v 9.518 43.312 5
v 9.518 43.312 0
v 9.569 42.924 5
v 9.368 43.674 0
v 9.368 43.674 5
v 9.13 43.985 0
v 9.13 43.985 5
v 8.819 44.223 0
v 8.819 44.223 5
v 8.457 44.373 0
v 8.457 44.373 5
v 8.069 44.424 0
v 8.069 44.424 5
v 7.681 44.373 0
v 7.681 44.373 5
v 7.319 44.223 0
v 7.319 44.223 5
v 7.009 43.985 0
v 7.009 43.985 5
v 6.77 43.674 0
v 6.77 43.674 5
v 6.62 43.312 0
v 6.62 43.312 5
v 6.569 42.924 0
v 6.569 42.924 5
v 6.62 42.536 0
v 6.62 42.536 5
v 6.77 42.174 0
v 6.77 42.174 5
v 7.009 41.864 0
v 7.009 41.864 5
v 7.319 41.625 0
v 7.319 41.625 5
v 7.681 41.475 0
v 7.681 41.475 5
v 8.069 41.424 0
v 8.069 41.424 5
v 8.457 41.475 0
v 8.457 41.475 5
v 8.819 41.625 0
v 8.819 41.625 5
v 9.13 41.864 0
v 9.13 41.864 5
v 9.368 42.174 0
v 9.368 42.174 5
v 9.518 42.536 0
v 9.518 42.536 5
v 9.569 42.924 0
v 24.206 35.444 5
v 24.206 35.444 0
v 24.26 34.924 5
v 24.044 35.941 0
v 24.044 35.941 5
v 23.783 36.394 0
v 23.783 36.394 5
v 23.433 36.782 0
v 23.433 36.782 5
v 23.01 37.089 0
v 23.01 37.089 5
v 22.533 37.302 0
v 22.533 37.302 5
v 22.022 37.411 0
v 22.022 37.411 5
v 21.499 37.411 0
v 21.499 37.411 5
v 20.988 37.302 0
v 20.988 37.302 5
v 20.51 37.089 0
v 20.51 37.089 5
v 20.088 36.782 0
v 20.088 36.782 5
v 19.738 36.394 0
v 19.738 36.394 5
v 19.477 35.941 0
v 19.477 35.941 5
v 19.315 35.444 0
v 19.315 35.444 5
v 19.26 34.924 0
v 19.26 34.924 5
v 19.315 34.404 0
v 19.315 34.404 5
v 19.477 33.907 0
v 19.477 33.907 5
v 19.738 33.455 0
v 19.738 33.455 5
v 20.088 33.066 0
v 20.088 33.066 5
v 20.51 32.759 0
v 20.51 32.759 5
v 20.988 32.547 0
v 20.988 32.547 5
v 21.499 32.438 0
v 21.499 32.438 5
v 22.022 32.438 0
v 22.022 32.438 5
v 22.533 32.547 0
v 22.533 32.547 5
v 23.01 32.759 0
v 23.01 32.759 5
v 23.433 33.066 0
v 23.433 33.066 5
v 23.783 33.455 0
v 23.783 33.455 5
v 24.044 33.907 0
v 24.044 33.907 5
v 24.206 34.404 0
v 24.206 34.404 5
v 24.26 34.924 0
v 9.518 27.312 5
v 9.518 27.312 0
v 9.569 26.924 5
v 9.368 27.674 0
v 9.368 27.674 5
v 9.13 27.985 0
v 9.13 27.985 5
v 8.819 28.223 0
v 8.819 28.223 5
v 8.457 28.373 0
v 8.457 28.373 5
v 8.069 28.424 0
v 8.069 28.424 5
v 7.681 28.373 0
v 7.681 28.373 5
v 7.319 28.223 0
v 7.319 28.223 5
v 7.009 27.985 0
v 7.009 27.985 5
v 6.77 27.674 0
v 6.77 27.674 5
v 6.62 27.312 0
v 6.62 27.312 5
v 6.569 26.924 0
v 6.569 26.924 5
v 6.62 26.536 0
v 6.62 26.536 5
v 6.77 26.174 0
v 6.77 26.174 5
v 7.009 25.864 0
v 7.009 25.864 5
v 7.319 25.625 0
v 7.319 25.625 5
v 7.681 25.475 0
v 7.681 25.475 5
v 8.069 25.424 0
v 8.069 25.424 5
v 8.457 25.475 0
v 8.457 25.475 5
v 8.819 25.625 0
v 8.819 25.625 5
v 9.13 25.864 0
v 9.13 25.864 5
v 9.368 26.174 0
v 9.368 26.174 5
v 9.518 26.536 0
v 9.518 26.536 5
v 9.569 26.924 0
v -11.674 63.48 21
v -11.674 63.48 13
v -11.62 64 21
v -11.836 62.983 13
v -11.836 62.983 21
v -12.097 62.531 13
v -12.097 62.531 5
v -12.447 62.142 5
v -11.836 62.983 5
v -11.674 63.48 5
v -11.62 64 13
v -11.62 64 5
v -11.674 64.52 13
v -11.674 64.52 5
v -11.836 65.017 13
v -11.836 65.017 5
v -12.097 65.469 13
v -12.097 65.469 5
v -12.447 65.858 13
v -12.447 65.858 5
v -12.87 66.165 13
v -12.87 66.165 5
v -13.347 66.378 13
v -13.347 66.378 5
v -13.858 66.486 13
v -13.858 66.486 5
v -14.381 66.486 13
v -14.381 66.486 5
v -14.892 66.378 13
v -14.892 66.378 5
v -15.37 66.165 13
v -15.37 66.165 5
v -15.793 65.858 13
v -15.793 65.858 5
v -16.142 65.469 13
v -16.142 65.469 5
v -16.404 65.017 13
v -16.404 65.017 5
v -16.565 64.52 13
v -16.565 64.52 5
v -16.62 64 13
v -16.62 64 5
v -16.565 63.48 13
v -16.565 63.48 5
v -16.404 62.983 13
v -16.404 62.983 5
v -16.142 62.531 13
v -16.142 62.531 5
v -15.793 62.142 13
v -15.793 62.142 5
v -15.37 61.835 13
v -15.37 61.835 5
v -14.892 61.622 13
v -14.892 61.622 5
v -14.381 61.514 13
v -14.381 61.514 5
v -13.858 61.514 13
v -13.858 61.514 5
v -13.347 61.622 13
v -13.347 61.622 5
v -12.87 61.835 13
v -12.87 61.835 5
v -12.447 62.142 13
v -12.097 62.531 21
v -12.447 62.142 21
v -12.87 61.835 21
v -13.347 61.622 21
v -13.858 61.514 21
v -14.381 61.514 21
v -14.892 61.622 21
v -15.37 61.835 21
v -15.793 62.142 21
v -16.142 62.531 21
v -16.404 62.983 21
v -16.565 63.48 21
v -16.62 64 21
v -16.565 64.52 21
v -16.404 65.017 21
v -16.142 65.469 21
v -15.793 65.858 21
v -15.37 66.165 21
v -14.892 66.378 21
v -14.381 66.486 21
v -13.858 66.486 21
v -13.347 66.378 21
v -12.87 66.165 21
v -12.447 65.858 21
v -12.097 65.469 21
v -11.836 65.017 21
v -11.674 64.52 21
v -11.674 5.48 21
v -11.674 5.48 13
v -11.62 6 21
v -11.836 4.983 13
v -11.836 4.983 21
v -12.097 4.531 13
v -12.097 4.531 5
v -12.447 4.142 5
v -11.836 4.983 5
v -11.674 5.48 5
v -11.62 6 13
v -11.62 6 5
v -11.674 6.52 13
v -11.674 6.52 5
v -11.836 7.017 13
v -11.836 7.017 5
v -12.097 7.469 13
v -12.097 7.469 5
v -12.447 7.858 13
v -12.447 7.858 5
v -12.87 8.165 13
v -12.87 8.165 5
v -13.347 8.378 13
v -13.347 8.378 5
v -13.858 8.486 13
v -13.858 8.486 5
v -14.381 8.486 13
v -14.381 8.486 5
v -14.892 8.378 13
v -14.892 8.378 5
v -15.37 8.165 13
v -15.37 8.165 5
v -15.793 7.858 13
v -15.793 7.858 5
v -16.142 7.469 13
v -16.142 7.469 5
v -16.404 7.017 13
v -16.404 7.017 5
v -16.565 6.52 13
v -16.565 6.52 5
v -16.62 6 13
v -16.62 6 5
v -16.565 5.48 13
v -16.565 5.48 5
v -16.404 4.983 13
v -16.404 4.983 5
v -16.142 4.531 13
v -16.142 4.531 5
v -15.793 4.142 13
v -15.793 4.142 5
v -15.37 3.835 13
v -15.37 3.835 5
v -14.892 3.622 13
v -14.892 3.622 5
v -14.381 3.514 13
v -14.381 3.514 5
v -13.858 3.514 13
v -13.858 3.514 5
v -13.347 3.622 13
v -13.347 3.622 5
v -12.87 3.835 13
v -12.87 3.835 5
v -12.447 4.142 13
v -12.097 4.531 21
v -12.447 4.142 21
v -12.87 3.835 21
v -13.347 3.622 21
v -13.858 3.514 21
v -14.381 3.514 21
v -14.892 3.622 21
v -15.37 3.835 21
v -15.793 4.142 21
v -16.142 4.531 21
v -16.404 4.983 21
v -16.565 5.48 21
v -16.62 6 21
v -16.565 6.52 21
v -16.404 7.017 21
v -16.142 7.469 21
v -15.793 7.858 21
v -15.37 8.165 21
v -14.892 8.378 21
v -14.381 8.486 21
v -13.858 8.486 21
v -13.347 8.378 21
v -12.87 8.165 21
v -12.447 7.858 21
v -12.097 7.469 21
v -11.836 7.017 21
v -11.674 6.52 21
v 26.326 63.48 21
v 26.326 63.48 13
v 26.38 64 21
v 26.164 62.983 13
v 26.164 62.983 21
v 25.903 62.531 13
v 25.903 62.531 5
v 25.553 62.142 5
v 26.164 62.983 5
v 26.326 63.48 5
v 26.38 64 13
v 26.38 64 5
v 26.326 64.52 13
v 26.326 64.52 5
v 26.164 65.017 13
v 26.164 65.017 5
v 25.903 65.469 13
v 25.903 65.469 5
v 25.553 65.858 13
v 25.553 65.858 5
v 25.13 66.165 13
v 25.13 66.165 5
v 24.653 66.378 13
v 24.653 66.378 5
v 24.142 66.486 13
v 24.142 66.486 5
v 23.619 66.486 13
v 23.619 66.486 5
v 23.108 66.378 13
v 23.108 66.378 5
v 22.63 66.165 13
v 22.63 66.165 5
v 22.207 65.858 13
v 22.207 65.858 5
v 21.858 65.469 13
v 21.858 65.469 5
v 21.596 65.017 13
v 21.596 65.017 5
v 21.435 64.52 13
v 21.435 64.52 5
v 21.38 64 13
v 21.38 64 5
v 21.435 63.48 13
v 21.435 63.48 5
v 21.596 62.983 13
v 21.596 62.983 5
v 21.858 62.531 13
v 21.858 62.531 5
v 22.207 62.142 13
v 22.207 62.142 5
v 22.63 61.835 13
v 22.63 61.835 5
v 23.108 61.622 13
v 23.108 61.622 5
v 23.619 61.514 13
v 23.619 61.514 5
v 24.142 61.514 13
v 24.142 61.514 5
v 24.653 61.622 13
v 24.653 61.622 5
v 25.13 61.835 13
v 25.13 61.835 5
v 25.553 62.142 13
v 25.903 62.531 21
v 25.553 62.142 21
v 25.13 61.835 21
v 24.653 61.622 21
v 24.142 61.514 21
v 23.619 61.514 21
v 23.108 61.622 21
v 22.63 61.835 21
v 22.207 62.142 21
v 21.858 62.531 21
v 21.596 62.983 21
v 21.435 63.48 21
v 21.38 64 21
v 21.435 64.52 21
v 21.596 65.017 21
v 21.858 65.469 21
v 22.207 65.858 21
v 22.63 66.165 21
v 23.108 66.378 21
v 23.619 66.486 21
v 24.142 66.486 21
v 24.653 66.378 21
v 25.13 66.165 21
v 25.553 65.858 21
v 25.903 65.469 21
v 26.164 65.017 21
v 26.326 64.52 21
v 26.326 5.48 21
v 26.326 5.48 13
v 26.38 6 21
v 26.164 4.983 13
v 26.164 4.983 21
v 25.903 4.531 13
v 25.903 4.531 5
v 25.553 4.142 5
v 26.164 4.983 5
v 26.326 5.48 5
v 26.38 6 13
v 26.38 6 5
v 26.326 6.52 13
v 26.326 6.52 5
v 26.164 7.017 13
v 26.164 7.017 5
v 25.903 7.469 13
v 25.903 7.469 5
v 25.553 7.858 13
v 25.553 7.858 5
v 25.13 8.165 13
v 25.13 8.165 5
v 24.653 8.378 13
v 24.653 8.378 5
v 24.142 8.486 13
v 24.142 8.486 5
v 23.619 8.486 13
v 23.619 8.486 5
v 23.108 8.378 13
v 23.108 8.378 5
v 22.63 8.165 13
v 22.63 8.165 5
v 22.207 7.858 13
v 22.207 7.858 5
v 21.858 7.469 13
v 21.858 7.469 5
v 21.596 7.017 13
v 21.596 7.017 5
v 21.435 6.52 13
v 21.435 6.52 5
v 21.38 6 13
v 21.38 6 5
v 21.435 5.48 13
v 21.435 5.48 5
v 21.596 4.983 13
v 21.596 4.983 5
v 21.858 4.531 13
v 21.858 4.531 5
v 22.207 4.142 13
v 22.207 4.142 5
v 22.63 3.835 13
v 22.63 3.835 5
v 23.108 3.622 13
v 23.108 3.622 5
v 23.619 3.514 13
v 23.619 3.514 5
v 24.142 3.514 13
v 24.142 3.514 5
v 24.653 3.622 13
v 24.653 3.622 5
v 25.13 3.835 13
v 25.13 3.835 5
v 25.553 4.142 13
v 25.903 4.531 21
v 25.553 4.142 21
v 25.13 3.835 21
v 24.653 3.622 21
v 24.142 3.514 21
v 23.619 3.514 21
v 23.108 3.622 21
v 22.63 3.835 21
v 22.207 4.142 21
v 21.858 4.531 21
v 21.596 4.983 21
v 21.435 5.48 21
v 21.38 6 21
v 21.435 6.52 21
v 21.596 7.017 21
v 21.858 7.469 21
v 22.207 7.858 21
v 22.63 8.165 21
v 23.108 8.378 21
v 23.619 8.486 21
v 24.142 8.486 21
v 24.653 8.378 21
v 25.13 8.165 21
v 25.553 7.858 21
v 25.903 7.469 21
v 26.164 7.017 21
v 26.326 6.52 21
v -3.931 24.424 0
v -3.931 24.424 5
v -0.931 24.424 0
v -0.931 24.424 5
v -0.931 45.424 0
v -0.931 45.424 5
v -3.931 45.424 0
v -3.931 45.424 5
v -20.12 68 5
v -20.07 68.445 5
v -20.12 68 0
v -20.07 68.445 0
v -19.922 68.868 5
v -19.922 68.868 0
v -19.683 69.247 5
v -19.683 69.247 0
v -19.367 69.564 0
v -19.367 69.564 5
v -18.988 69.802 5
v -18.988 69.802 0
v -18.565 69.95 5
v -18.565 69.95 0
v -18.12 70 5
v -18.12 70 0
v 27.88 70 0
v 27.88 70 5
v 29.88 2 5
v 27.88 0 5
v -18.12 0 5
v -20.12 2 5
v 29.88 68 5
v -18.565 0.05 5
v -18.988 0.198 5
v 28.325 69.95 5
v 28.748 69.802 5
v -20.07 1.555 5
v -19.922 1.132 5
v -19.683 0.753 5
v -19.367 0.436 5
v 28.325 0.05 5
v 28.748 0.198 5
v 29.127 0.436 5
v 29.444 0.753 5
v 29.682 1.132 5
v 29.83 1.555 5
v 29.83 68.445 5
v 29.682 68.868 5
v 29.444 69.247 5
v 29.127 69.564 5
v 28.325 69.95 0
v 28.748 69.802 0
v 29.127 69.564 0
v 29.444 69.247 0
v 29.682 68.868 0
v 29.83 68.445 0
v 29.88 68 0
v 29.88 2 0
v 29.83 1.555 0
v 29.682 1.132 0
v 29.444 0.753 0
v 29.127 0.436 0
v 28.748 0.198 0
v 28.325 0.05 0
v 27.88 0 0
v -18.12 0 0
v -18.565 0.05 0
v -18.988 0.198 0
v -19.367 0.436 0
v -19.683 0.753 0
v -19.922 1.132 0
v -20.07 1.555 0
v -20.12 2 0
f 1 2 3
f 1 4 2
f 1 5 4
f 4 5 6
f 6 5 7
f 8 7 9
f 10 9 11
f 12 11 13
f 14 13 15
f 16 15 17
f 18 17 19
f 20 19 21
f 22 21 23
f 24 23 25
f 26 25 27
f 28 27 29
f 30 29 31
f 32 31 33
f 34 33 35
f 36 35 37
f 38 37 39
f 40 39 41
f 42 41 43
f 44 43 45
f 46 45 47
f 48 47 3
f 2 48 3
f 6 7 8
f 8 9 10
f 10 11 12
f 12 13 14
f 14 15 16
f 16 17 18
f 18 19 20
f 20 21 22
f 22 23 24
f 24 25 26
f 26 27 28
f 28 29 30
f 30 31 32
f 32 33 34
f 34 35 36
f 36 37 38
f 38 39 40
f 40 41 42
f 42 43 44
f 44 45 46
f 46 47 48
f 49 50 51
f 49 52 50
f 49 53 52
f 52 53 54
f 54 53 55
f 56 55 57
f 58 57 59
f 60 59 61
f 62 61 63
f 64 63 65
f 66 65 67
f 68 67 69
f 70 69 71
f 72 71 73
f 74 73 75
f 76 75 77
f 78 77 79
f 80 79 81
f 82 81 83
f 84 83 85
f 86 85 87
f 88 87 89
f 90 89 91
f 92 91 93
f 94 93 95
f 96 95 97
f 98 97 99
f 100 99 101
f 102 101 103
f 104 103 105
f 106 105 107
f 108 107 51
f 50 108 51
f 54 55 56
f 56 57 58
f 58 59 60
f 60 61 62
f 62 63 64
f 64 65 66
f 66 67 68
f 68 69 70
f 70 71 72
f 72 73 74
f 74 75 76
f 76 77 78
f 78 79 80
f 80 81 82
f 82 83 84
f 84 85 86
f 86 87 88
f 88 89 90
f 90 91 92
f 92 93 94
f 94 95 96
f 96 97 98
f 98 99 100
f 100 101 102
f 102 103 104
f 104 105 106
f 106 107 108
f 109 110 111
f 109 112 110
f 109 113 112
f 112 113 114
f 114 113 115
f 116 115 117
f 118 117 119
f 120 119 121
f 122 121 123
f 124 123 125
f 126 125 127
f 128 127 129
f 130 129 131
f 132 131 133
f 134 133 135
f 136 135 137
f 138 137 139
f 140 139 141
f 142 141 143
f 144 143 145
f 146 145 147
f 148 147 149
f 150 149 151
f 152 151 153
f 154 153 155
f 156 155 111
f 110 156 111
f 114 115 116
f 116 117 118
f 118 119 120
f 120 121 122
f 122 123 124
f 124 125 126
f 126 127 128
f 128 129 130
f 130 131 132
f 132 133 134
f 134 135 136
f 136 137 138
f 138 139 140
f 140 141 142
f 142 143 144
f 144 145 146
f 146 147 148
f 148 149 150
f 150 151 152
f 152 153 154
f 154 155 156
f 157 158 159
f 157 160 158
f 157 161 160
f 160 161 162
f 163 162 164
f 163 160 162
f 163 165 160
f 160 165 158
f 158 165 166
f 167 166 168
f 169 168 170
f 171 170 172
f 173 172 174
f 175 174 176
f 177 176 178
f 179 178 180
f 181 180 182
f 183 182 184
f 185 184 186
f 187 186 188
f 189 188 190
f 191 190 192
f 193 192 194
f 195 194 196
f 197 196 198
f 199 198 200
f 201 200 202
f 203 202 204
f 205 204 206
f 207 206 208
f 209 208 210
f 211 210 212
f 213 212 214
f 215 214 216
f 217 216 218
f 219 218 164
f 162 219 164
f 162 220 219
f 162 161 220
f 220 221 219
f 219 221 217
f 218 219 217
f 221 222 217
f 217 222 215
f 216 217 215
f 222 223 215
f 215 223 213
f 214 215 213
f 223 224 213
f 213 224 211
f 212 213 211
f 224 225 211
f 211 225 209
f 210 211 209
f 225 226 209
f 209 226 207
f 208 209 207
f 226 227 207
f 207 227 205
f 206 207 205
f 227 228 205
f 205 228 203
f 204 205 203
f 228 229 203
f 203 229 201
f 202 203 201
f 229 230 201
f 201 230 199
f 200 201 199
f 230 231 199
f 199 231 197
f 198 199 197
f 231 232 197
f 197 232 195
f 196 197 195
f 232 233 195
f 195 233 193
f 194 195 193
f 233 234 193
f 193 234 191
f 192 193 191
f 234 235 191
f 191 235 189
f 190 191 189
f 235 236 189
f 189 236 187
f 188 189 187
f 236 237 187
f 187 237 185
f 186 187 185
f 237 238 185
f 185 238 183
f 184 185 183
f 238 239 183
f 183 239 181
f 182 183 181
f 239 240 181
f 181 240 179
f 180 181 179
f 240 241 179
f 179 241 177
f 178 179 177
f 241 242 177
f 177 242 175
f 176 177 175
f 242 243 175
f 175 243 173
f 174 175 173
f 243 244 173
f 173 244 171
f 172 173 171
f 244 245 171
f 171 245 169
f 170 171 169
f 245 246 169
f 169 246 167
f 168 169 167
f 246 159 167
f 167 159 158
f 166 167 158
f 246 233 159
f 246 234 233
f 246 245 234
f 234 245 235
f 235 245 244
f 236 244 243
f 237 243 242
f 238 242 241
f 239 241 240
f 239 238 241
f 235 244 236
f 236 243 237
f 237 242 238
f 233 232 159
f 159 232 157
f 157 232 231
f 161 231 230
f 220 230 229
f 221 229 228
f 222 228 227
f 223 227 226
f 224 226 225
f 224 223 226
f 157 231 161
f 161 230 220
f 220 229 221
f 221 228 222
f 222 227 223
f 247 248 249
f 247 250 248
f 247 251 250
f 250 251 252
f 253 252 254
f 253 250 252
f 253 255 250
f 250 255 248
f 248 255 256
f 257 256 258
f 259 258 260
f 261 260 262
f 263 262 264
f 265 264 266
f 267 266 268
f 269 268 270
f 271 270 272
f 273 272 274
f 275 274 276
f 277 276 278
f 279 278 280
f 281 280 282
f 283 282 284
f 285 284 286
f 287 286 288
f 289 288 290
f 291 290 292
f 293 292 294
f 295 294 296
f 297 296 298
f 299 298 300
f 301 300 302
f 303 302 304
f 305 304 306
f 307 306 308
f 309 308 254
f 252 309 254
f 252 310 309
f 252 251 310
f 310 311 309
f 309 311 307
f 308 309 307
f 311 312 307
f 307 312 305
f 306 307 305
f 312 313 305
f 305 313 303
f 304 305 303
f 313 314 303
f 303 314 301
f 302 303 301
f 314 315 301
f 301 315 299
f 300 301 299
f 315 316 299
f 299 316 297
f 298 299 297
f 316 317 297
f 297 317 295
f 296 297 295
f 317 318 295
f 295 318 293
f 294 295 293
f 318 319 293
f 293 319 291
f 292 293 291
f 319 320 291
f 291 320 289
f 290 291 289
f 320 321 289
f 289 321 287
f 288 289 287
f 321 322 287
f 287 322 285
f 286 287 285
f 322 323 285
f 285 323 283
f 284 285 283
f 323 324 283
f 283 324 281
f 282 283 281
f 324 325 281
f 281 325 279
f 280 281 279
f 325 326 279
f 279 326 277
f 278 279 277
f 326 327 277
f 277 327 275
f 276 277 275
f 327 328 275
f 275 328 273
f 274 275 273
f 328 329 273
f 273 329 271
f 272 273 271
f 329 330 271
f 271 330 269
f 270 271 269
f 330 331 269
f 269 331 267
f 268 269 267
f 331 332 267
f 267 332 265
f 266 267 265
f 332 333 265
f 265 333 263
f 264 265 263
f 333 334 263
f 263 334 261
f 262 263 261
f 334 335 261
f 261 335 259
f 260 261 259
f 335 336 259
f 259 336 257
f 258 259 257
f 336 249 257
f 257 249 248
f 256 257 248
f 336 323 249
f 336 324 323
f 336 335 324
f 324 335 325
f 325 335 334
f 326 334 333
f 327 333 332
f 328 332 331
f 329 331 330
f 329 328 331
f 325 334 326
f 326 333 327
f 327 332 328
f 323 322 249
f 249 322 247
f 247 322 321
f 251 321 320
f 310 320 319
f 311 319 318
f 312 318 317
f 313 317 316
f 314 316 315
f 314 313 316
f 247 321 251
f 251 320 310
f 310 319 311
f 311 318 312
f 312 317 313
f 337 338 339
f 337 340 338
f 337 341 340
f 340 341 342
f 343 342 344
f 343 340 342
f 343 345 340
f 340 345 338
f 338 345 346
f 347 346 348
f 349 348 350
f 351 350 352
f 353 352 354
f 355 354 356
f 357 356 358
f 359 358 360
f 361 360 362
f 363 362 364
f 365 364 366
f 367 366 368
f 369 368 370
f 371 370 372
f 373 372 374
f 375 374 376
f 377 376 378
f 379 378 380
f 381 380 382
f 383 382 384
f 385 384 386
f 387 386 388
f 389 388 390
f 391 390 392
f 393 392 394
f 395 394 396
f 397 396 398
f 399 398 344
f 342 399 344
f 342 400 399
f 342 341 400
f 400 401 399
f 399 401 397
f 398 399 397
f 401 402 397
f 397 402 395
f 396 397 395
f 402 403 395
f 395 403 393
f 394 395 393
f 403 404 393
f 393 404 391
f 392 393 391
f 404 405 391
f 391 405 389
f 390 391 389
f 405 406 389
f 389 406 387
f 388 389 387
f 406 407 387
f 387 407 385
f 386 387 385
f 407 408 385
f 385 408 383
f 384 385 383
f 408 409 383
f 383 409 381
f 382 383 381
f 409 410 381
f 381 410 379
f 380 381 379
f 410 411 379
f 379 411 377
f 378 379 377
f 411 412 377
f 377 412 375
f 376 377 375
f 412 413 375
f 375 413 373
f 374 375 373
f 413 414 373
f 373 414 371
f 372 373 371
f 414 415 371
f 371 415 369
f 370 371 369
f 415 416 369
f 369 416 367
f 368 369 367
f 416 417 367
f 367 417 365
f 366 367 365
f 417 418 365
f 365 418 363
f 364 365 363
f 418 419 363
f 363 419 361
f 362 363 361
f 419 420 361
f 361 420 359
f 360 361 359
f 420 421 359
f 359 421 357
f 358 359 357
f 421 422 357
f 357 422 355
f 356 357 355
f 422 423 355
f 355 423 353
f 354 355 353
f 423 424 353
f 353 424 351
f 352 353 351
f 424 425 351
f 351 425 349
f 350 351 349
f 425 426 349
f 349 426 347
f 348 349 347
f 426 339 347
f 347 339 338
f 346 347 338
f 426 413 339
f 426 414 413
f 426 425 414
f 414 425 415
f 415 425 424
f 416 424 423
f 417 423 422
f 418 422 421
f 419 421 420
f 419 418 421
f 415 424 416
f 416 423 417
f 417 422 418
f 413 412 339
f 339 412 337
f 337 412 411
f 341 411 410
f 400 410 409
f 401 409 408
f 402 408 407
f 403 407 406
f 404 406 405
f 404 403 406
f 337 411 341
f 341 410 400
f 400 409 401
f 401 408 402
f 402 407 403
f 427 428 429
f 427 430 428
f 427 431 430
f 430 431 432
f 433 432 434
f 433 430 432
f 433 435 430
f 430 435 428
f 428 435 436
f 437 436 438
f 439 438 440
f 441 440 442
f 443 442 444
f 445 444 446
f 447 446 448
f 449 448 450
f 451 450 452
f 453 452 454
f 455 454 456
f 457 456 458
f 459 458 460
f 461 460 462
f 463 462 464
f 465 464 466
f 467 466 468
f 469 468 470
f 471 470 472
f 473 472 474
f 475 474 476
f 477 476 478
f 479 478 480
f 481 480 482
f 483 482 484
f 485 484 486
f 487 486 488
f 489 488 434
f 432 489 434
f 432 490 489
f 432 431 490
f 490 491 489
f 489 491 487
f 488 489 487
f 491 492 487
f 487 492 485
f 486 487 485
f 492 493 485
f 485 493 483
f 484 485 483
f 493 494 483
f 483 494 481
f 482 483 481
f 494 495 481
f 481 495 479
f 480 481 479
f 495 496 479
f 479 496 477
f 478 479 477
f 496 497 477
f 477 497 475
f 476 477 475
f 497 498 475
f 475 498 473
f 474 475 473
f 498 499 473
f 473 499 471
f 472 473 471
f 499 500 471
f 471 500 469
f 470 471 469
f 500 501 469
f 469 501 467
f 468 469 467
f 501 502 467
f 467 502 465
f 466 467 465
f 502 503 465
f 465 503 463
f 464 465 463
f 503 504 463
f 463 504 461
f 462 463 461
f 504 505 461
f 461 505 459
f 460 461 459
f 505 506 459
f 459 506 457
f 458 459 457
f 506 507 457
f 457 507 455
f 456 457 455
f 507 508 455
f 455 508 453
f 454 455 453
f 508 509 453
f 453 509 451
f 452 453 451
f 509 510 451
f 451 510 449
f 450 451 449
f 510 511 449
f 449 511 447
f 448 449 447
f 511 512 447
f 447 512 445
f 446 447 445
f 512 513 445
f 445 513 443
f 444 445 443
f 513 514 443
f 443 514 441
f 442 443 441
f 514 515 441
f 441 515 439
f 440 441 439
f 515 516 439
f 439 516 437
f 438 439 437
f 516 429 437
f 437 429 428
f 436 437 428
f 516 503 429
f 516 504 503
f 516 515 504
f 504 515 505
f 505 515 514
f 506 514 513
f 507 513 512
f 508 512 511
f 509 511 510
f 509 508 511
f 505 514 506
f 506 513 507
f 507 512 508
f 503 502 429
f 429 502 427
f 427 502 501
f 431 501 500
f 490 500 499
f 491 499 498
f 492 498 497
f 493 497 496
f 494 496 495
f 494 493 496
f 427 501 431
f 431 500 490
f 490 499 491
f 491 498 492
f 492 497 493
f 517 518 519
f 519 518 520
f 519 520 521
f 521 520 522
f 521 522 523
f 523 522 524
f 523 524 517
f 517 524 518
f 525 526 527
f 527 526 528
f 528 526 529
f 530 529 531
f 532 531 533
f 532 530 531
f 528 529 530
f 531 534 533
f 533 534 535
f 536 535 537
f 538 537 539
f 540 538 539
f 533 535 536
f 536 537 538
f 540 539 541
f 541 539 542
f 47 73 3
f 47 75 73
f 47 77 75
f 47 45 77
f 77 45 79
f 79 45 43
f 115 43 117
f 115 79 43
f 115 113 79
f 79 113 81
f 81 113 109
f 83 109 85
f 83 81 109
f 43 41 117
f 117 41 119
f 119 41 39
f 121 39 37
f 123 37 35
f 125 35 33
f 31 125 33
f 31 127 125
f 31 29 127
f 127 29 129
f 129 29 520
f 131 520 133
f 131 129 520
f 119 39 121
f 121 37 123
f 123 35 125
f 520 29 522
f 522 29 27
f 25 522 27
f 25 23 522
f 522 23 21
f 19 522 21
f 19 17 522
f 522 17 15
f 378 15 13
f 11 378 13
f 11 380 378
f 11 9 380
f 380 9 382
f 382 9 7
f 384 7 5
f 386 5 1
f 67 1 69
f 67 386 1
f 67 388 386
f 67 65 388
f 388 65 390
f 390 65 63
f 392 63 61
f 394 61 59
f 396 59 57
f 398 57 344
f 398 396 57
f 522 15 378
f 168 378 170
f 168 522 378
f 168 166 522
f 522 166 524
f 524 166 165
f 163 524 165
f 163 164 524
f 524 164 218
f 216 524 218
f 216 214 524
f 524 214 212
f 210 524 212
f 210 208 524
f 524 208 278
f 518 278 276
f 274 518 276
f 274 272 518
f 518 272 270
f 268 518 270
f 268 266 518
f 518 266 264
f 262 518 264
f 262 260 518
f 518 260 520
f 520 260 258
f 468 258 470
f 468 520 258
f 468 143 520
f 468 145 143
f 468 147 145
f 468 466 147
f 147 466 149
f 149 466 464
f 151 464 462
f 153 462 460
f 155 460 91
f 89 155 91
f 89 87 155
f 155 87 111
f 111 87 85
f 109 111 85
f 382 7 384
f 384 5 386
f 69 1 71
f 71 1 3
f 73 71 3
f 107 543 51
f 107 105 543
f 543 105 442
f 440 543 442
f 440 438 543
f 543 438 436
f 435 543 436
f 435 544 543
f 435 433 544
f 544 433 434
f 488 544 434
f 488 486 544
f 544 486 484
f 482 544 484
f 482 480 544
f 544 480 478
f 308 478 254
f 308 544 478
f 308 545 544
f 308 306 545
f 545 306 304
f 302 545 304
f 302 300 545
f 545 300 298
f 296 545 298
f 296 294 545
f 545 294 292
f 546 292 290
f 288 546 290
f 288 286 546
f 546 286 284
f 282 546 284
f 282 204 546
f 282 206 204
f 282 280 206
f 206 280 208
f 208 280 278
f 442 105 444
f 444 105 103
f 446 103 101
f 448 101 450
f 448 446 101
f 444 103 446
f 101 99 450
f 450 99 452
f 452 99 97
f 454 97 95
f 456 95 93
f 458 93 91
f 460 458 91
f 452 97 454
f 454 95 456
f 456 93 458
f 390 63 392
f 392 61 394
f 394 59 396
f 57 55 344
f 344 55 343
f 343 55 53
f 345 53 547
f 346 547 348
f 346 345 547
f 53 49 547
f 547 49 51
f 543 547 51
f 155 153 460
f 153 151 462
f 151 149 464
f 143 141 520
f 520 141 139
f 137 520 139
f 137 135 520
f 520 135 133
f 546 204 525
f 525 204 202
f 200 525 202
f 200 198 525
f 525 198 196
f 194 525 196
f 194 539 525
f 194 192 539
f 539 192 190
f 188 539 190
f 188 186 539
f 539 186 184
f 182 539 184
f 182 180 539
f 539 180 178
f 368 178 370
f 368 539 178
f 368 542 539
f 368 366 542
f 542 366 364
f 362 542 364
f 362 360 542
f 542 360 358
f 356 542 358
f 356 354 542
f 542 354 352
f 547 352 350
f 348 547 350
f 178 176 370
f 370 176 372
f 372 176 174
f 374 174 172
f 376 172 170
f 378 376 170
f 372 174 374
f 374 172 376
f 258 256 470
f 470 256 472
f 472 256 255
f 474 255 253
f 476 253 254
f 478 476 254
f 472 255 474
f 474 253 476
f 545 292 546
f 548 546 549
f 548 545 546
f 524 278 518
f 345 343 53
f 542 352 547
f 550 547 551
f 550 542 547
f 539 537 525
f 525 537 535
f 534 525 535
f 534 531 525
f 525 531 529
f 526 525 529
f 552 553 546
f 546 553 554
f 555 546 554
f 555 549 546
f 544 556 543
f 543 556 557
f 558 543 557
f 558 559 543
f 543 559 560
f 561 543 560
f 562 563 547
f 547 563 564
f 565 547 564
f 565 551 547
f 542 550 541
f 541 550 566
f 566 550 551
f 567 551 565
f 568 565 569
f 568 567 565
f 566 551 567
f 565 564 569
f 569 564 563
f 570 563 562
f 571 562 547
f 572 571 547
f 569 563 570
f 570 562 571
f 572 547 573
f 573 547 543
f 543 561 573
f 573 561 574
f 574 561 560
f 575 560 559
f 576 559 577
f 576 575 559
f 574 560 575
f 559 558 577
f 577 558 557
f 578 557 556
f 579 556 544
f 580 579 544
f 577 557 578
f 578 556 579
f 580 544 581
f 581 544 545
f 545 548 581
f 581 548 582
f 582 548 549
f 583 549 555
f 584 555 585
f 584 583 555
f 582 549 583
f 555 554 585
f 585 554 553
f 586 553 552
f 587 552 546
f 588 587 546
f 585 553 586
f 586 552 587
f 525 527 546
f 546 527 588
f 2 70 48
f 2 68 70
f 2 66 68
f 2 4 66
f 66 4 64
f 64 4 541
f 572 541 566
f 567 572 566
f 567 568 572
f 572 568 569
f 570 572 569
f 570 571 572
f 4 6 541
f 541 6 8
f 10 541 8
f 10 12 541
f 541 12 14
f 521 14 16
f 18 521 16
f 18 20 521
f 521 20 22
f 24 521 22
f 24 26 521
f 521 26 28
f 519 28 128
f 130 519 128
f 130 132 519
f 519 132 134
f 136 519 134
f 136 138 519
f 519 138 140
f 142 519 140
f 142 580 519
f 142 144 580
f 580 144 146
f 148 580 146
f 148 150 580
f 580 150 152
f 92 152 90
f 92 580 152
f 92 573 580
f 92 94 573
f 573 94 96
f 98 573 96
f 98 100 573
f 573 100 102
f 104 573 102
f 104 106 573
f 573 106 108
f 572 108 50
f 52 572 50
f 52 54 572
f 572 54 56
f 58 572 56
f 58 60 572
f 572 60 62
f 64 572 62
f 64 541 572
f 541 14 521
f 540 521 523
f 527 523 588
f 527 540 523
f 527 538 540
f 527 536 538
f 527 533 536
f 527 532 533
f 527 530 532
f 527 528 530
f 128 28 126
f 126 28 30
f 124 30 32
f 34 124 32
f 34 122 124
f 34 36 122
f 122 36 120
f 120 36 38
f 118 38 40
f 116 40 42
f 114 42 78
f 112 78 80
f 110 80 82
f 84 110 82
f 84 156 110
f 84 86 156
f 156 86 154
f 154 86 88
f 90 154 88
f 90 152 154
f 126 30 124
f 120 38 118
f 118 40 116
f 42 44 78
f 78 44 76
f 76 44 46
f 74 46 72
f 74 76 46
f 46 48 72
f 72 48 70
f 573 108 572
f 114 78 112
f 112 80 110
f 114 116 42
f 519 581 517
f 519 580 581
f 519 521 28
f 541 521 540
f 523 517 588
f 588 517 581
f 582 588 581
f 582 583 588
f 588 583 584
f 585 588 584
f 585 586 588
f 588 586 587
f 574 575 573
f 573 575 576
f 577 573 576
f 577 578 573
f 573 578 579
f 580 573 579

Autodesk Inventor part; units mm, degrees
ref_plane "YZ Plane" through (0, 0, 0) normal (1, 0, 0) x (0, 1, 0)
ref_plane "XZ Plane" through (0, 0, 0) normal (0, 1, 0) x (-1, 0, 0)
ref_plane "XY Plane" through (0, 0, 0) normal (0, 0, 1) x (1, 0, 0)
sketch "Skizze1" plane through (0, 0, 0) normal (0, 0, 1) x (1, 0, 0)
  line L0 (-20.1198, 0) -> (29.8802, 0)
  line L1 (29.8802, 0) -> (29.8802, 70)
  line L2 (29.8802, 70) -> (-20.1198, 70)
  line L3 (-20.1198, 70) -> (-20.1198, 0)
  point P0 (0, 0)
  dimension "d0" = 50
  dimension "d1" = 70
extrude "Extrusion1" add sketch "Skizze1" along normal blind 5
fillet "Rundung1" radius 2 4 edges at (-20.1198, 0, 2.5) (29.8802, 0, 2.5) (29.8802, 70, 2.5) (-20.1198, 70, 2.5)
sketch "Skizze2" plane through (0, 0, 5) normal (0, 0, 1) x (1, 0, 0)
  line L0 (-3.9308, 24.4243) -> (-0.9308, 24.4243)
  line L1 (-0.9308, 24.4243) -> (-0.9308, 45.4243)
  line L2 (-0.9308, 45.4243) -> (-3.9308, 45.4243)
  line L3 (-3.9308, 45.4243) -> (-3.9308, 24.4243)
  point P0 (0, 0)
  dimension "d5" = 3
  dimension "d6" = 21
extrude "Extrusion2" cut sketch "Skizze2" against normal up to surface (5 mm away)
sketch "Skizze3" plane through (0, 0, 5) normal (0, 0, 1) x (1, 0, 0)
  line L0 (-20.1198, 2) -> (-20.1198, 68) projected
  line L1 (27.8802, 0) -> (-18.1198, 0) projected
  line L2 (29.8802, 68) -> (29.8802, 2) projected
  line L3 (-18.1198, 70) -> (27.8802, 70) projected
  line L4 (-3.9308, 45.4243) -> (10.5692, 45.4243)
  line L5 (10.5692, 45.4243) -> (10.5692, 24.4243)
  line L6 (10.5692, 24.4243) -> (-3.9308, 24.4243)
  line L7 (-3.9308, 24.4243) -> (-3.9308, 45.4243)
  circle A0 centre (8.0692, 42.9243) radius 1.5
  circle A1 centre (8.0692, 26.9243) radius 1.5
  circle A2 centre (21.7604, 34.9243) radius 2.5
  circle A3 centre (-14.1198, 64) radius 2.5
  circle A4 centre (23.8802, 64) radius 2.5
  circle A5 centre (-14.1198, 6) radius 2.5
  circle A6 centre (23.8802, 6) radius 2.5
  point P0 (0, 0)
  dimension "d9" = 14.5
  dimension "d10" = 21
  dimension "d11" = 3
  dimension "d12" = 3
  dimension "d13" = 2.5
  dimension "d14" = 2.5
  dimension "d15" = 2.5
  dimension "d16" = 2.5
  dimension "d17" = 5
  dimension "d18" = 5
  dimension "d19" = 5
  dimension "d20" = 5
  dimension "d21" = 5
  dimension "d22" = 6
  dimension "d23" = 6
  dimension "d24" = 6
  dimension "d25" = 6
  dimension "d26" = 6
  dimension "d27" = 6
  dimension "d28" = 6
  dimension "d29" = 6
sketch "Skizze4" plane through (0, 0, 5) normal (0, 0, 1) x (1, 0, 0)
  circle A0 centre (-14.1198, 64) radius 2.5
  circle A1 centre (23.8802, 64) radius 2.5
  circle A2 centre (-14.1198, 6) radius 2.5
  circle A3 centre (23.8802, 6) radius 2.5
  point P0 (0, 0)
  dimension "d30" = 5
  dimension "d31" = 5
  dimension "d32" = 5
  dimension "d33" = 5
extrude "Extrusion3" add sketch "Skizze4" along normal blind 16
extrude "Extrusion4" cut sketch "Skizze3" against normal up to surface (5 mm away) contours A0 | A1 | A2
properties part number "Platte"
